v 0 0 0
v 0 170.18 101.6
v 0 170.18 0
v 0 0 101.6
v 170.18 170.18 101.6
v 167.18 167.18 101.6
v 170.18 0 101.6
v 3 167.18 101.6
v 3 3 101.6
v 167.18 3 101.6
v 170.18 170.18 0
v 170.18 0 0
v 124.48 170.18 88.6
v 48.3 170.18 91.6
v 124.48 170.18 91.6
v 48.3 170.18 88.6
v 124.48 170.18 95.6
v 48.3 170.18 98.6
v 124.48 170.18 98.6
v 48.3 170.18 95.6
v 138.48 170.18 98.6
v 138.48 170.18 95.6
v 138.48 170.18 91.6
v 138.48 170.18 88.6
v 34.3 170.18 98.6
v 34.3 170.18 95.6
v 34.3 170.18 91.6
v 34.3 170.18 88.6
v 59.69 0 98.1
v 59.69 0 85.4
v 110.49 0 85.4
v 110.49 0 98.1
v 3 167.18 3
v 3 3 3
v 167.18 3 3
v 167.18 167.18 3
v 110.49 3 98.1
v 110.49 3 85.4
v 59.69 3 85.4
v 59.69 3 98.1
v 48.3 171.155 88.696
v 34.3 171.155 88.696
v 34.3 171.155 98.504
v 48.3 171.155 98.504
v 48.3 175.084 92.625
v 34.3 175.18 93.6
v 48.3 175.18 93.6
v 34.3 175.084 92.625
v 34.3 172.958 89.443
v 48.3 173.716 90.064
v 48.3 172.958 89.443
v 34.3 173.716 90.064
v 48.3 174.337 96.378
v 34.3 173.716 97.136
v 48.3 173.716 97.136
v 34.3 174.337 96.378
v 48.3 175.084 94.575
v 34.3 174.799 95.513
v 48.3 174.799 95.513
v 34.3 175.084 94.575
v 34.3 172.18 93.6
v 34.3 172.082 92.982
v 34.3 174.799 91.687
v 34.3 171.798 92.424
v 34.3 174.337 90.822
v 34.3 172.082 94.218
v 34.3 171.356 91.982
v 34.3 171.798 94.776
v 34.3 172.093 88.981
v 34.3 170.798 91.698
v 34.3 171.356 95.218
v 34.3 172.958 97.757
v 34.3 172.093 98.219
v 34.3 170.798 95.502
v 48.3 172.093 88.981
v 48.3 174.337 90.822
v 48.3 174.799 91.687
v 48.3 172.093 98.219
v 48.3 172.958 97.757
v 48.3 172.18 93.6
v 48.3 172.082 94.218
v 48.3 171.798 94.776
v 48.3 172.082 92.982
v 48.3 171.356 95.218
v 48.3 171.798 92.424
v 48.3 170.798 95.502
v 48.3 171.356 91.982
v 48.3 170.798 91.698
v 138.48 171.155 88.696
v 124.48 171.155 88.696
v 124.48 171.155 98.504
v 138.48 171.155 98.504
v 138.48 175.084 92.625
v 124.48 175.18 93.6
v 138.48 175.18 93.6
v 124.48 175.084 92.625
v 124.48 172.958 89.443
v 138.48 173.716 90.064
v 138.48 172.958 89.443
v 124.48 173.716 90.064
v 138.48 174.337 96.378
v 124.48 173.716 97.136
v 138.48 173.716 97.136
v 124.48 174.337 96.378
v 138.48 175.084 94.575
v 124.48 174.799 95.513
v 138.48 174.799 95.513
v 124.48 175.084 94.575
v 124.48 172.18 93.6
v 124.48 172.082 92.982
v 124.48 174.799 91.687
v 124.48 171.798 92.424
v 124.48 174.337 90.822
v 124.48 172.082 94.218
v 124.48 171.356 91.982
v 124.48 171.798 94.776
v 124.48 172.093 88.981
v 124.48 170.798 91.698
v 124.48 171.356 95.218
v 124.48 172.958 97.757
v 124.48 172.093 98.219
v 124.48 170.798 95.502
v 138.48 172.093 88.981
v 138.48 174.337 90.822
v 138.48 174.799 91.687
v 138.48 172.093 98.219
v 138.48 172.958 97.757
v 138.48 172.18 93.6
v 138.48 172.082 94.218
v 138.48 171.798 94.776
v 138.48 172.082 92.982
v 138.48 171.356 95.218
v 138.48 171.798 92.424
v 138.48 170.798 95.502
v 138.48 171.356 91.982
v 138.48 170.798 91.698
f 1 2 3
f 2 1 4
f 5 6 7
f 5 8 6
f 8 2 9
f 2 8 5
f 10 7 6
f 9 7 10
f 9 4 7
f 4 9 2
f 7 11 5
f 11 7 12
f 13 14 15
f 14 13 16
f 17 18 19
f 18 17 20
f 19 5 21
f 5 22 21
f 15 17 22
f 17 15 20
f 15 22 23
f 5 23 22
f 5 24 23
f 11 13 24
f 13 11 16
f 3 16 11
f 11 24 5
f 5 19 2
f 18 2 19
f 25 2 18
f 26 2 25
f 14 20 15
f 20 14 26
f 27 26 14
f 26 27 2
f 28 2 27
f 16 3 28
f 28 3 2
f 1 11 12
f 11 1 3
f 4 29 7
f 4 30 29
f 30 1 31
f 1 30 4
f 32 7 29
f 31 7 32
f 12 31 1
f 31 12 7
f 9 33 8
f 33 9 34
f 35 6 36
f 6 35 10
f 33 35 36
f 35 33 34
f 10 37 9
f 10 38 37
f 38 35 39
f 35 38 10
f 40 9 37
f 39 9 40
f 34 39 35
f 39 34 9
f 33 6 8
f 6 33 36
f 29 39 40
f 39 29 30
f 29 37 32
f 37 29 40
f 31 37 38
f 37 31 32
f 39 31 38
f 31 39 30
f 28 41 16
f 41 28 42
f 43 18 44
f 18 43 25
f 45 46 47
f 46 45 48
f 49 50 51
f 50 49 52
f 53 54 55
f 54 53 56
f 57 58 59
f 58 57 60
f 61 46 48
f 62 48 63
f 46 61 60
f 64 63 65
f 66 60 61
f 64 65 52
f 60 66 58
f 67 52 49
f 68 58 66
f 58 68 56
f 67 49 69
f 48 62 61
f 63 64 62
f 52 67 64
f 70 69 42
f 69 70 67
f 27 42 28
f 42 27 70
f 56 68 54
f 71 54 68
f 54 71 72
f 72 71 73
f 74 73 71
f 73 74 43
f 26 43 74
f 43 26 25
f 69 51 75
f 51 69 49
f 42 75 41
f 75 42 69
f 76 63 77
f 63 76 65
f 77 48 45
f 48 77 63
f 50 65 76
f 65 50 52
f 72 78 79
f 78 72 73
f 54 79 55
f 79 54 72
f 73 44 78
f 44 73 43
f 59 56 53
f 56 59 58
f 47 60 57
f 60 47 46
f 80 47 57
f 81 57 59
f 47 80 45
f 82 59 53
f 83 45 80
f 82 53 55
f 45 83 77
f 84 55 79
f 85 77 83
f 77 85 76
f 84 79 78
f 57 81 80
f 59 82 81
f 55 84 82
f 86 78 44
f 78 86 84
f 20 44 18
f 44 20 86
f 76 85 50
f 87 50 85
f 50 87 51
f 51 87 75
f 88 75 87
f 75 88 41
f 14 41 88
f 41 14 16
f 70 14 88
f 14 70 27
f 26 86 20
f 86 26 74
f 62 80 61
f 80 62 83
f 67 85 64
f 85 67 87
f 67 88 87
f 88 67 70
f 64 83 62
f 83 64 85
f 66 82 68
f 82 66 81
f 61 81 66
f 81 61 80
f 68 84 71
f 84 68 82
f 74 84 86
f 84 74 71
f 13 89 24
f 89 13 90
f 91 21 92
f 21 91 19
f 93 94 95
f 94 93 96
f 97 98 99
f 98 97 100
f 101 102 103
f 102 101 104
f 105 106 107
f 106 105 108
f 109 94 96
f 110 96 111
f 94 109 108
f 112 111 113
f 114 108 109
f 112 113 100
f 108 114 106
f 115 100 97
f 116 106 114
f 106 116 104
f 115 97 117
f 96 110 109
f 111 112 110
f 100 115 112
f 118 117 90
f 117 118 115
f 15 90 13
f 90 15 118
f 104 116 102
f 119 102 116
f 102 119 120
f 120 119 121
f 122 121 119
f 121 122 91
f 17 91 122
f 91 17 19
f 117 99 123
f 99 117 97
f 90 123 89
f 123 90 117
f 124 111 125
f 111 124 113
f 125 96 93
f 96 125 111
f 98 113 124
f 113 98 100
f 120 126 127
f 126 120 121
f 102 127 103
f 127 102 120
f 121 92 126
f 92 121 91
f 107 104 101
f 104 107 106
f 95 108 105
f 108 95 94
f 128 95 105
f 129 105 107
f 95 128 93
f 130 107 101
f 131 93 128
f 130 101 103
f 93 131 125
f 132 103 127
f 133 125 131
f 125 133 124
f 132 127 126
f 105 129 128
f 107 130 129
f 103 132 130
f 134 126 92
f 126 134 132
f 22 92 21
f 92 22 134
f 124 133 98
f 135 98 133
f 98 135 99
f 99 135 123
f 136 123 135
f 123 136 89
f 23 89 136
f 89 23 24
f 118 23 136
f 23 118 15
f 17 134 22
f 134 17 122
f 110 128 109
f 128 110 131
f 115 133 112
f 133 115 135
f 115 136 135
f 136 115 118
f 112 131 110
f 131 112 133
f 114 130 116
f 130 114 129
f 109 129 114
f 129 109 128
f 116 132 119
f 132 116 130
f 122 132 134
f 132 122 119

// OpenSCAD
// ============================================================
// PhoneLock - Main Box (bottom part, phone sits inside)
// All dimensions in mm. Inches converted at 25.4mm = 1 inch.
// ============================================================

// --- Parameters ---
wall       = 3;
in2mm      = 25.4;

// Footprint — same as component tray
outer_w    = 6.7  * in2mm;   // 170.18 mm  (X)
outer_d    = 6.7  * in2mm;   // 170.18 mm  (Y)
outer_h    = 4.0  * in2mm;   // 101.60 mm  (Z) - 4 inches tall

// Servo latch hole on front wall (y=0)
servo_hole_w   = 2.0  * in2mm;   // 50.80 mm  horizontal
servo_hole_h   = 0.5  * in2mm;   // 12.70 mm  vertical
servo_hole_z   = outer_h - wall - servo_hole_h - 0.5;  // near top edge, 5mm from top

// Hinge parameters — must match component tray exactly
hinge_r         = 5;
hinge_pin_r     = 2;
hinge_knuckle_h = 14;
hinge_gap       = 0.3;
hinge_inset     = 20;

// ============================================================
// MODULE: Single knuckle segment
// ============================================================
module knuckle(h) {
    difference() {
        cylinder(r = hinge_r, h = h, $fn = 32);
        cylinder(r = hinge_pin_r, h = h + 1, $fn = 20);
    }
}

// ============================================================
// MODULE: Middle knuckle strip (knuckle 2 only)
// Slots between knuckles 1 & 3 on the component tray
// ============================================================
module hinge_strip_box() {
    // Only the middle knuckle — sits in the gap between tray's knuckles
    translate([0, 0, hinge_knuckle_h + hinge_gap])
        knuckle(hinge_knuckle_h);
}

// ============================================================
// MAIN: Box
// ============================================================
module main_box() {
    difference() {

        // --- Outer shell ---
        cube([outer_w, outer_d, outer_h]);

        // --- Hollow interior (open top) ---
        translate([wall, wall, wall])
            cube([
                outer_w - 2 * wall,
                outer_d - 2 * wall,
                outer_h              // cut all the way up — open top
            ]);

        // --- Servo latch hole on front wall, near top ---
        translate([
            outer_w / 2 - servo_hole_w / 2,
            -1,
            servo_hole_z
        ])
            cube([servo_hole_w, wall + 2, servo_hole_h]);

    }

    // --- Middle knuckle hinges on back wall ---
    difference() {
        union() {
            // Hinge 1 — middle knuckle
            translate([
                hinge_inset,
                outer_d,
                outer_h - wall - hinge_r
            ])
                rotate([0, 90, 0])
                    hinge_strip_box();

            // Hinge 2 — middle knuckle
            translate([
                outer_w - hinge_inset - hinge_r * 8,
                outer_d,
                outer_h - wall - hinge_r
            ])
                rotate([0, 90, 0])
                    hinge_strip_box();
        }

        // Clip anything intruding inside the box
        cube([outer_w, outer_d - wall, outer_h + 10]);
    }
}

// ============================================================
// RENDER
// ============================================================
main_box();
